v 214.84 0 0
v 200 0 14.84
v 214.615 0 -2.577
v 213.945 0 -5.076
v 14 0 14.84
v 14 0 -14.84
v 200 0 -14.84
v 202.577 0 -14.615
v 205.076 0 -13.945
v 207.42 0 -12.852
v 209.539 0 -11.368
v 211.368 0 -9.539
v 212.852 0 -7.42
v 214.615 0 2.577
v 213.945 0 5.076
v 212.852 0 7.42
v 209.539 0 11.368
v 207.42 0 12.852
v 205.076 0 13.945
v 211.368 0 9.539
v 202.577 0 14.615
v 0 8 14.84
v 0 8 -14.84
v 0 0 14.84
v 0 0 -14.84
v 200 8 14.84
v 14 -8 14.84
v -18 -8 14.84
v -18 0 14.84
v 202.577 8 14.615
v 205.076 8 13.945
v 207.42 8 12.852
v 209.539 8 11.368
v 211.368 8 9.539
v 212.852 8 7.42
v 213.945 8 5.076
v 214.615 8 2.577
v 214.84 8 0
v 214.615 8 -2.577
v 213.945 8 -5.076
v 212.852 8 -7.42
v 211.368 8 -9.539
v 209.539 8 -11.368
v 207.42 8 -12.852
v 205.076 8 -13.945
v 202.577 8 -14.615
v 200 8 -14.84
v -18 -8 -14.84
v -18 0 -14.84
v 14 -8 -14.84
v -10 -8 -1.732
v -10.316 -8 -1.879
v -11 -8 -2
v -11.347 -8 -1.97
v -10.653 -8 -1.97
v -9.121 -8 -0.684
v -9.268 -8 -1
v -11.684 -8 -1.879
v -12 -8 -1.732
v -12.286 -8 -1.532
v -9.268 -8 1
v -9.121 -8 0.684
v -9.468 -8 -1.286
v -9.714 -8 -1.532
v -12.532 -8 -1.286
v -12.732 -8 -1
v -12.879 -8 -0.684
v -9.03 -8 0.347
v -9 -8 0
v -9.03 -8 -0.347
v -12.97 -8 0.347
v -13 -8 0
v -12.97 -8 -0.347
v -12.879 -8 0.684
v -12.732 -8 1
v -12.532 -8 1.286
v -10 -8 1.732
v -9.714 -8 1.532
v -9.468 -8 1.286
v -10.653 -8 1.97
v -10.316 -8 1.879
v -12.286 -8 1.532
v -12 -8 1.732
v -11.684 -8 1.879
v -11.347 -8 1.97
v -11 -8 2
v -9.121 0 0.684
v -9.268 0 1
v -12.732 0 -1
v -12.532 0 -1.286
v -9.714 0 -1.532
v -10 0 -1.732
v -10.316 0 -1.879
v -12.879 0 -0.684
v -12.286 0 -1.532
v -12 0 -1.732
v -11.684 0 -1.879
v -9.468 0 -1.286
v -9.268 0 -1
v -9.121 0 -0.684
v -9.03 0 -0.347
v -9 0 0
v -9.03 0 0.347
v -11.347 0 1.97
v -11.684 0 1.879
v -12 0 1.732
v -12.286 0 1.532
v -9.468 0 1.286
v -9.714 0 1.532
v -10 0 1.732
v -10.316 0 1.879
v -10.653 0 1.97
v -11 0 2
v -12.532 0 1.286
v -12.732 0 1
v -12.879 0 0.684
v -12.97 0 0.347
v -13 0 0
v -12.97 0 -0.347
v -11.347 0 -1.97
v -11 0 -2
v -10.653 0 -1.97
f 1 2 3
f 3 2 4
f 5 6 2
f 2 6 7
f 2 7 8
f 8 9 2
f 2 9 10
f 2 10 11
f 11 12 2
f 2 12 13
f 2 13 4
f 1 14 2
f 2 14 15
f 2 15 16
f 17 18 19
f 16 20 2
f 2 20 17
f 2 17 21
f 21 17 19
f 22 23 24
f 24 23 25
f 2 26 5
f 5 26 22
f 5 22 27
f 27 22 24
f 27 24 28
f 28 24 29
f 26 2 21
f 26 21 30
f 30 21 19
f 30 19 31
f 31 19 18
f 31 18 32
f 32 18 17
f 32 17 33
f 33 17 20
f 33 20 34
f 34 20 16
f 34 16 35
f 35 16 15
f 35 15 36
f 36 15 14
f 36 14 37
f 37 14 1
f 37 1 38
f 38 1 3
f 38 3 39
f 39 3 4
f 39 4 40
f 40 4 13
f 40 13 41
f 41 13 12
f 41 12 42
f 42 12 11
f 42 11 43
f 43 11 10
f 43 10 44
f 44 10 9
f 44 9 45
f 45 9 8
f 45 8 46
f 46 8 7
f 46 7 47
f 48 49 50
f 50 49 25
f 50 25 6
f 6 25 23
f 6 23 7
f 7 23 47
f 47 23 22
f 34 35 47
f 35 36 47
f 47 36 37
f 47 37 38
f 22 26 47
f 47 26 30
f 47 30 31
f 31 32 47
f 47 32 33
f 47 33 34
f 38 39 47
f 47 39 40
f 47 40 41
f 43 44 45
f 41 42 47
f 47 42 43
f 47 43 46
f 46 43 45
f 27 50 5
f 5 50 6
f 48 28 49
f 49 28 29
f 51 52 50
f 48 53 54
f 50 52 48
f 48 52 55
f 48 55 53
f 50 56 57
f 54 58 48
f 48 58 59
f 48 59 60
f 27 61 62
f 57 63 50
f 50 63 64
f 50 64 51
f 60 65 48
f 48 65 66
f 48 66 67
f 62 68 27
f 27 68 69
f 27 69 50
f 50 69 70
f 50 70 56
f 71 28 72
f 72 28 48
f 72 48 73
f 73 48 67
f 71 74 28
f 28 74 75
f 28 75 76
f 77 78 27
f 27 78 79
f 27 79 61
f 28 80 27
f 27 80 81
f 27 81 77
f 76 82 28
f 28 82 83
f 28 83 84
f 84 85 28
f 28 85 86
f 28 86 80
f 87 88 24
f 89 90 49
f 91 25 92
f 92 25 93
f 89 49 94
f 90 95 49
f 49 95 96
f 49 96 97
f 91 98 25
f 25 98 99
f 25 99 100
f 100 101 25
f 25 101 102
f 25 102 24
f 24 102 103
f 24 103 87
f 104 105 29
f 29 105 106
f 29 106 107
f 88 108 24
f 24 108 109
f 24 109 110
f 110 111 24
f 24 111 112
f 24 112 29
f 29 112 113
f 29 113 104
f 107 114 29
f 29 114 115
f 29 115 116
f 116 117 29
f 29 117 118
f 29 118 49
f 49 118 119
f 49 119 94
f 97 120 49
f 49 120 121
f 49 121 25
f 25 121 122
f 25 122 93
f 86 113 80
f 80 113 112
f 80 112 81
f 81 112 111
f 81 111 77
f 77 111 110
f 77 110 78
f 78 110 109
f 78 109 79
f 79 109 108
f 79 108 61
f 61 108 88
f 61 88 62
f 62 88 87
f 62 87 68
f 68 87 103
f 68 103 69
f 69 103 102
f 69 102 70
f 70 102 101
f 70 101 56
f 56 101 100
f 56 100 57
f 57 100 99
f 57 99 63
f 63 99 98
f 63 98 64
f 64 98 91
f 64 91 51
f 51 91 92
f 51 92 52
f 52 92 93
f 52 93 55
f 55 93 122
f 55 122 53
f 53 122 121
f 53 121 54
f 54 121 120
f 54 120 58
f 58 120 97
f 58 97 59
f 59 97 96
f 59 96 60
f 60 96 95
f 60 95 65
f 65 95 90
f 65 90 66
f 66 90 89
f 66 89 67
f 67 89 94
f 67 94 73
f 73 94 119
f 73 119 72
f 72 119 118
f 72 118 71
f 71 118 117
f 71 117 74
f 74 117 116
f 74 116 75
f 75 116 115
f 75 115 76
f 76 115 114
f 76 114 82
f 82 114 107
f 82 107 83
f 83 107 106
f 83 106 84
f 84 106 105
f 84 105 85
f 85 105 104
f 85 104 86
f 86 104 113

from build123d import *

# Parameters (mm, degrees)
BOSS_EXTRUDE1_DEPTH = 8
SKETCH2_W           = 32
SKETCH2_H           = 29.68
SKETCH2_R           = 2
BOSS_EXTRUDE2_DEPTH = 8


with BuildPart() as part:
    # Sketch1 → Boss-Extrude1 (new body)
    with BuildSketch(Plane(origin=(0, 0, 0), x_dir=(1, 0, 0), z_dir=(0, 1, 0))):
        with BuildLine():
            Line((0, 14.84), (200, 14.84))
            ThreePointArc((200, 14.84), (214.84, 0), (200, -14.84))
            Line((200, -14.84), (0, -14.84))
            Line((0, -14.84), (0, 14.84))
        make_face()
    extrude(amount=BOSS_EXTRUDE1_DEPTH)

    # Sketch2 → Boss-Extrude2 (add)
    with BuildSketch(Plane(origin=(0, 0, 0), x_dir=(1, 0, 0), z_dir=(0, 1, 0))):
        with Locations((-2, 0)):
            Rectangle(SKETCH2_W, SKETCH2_H)
        with Locations(Location((-11, 0, 0), (0, 0, 270))):
            Circle(SKETCH2_R, mode=Mode.SUBTRACT)
    extrude(amount=-BOSS_EXTRUDE2_DEPTH)


solid = part.part
